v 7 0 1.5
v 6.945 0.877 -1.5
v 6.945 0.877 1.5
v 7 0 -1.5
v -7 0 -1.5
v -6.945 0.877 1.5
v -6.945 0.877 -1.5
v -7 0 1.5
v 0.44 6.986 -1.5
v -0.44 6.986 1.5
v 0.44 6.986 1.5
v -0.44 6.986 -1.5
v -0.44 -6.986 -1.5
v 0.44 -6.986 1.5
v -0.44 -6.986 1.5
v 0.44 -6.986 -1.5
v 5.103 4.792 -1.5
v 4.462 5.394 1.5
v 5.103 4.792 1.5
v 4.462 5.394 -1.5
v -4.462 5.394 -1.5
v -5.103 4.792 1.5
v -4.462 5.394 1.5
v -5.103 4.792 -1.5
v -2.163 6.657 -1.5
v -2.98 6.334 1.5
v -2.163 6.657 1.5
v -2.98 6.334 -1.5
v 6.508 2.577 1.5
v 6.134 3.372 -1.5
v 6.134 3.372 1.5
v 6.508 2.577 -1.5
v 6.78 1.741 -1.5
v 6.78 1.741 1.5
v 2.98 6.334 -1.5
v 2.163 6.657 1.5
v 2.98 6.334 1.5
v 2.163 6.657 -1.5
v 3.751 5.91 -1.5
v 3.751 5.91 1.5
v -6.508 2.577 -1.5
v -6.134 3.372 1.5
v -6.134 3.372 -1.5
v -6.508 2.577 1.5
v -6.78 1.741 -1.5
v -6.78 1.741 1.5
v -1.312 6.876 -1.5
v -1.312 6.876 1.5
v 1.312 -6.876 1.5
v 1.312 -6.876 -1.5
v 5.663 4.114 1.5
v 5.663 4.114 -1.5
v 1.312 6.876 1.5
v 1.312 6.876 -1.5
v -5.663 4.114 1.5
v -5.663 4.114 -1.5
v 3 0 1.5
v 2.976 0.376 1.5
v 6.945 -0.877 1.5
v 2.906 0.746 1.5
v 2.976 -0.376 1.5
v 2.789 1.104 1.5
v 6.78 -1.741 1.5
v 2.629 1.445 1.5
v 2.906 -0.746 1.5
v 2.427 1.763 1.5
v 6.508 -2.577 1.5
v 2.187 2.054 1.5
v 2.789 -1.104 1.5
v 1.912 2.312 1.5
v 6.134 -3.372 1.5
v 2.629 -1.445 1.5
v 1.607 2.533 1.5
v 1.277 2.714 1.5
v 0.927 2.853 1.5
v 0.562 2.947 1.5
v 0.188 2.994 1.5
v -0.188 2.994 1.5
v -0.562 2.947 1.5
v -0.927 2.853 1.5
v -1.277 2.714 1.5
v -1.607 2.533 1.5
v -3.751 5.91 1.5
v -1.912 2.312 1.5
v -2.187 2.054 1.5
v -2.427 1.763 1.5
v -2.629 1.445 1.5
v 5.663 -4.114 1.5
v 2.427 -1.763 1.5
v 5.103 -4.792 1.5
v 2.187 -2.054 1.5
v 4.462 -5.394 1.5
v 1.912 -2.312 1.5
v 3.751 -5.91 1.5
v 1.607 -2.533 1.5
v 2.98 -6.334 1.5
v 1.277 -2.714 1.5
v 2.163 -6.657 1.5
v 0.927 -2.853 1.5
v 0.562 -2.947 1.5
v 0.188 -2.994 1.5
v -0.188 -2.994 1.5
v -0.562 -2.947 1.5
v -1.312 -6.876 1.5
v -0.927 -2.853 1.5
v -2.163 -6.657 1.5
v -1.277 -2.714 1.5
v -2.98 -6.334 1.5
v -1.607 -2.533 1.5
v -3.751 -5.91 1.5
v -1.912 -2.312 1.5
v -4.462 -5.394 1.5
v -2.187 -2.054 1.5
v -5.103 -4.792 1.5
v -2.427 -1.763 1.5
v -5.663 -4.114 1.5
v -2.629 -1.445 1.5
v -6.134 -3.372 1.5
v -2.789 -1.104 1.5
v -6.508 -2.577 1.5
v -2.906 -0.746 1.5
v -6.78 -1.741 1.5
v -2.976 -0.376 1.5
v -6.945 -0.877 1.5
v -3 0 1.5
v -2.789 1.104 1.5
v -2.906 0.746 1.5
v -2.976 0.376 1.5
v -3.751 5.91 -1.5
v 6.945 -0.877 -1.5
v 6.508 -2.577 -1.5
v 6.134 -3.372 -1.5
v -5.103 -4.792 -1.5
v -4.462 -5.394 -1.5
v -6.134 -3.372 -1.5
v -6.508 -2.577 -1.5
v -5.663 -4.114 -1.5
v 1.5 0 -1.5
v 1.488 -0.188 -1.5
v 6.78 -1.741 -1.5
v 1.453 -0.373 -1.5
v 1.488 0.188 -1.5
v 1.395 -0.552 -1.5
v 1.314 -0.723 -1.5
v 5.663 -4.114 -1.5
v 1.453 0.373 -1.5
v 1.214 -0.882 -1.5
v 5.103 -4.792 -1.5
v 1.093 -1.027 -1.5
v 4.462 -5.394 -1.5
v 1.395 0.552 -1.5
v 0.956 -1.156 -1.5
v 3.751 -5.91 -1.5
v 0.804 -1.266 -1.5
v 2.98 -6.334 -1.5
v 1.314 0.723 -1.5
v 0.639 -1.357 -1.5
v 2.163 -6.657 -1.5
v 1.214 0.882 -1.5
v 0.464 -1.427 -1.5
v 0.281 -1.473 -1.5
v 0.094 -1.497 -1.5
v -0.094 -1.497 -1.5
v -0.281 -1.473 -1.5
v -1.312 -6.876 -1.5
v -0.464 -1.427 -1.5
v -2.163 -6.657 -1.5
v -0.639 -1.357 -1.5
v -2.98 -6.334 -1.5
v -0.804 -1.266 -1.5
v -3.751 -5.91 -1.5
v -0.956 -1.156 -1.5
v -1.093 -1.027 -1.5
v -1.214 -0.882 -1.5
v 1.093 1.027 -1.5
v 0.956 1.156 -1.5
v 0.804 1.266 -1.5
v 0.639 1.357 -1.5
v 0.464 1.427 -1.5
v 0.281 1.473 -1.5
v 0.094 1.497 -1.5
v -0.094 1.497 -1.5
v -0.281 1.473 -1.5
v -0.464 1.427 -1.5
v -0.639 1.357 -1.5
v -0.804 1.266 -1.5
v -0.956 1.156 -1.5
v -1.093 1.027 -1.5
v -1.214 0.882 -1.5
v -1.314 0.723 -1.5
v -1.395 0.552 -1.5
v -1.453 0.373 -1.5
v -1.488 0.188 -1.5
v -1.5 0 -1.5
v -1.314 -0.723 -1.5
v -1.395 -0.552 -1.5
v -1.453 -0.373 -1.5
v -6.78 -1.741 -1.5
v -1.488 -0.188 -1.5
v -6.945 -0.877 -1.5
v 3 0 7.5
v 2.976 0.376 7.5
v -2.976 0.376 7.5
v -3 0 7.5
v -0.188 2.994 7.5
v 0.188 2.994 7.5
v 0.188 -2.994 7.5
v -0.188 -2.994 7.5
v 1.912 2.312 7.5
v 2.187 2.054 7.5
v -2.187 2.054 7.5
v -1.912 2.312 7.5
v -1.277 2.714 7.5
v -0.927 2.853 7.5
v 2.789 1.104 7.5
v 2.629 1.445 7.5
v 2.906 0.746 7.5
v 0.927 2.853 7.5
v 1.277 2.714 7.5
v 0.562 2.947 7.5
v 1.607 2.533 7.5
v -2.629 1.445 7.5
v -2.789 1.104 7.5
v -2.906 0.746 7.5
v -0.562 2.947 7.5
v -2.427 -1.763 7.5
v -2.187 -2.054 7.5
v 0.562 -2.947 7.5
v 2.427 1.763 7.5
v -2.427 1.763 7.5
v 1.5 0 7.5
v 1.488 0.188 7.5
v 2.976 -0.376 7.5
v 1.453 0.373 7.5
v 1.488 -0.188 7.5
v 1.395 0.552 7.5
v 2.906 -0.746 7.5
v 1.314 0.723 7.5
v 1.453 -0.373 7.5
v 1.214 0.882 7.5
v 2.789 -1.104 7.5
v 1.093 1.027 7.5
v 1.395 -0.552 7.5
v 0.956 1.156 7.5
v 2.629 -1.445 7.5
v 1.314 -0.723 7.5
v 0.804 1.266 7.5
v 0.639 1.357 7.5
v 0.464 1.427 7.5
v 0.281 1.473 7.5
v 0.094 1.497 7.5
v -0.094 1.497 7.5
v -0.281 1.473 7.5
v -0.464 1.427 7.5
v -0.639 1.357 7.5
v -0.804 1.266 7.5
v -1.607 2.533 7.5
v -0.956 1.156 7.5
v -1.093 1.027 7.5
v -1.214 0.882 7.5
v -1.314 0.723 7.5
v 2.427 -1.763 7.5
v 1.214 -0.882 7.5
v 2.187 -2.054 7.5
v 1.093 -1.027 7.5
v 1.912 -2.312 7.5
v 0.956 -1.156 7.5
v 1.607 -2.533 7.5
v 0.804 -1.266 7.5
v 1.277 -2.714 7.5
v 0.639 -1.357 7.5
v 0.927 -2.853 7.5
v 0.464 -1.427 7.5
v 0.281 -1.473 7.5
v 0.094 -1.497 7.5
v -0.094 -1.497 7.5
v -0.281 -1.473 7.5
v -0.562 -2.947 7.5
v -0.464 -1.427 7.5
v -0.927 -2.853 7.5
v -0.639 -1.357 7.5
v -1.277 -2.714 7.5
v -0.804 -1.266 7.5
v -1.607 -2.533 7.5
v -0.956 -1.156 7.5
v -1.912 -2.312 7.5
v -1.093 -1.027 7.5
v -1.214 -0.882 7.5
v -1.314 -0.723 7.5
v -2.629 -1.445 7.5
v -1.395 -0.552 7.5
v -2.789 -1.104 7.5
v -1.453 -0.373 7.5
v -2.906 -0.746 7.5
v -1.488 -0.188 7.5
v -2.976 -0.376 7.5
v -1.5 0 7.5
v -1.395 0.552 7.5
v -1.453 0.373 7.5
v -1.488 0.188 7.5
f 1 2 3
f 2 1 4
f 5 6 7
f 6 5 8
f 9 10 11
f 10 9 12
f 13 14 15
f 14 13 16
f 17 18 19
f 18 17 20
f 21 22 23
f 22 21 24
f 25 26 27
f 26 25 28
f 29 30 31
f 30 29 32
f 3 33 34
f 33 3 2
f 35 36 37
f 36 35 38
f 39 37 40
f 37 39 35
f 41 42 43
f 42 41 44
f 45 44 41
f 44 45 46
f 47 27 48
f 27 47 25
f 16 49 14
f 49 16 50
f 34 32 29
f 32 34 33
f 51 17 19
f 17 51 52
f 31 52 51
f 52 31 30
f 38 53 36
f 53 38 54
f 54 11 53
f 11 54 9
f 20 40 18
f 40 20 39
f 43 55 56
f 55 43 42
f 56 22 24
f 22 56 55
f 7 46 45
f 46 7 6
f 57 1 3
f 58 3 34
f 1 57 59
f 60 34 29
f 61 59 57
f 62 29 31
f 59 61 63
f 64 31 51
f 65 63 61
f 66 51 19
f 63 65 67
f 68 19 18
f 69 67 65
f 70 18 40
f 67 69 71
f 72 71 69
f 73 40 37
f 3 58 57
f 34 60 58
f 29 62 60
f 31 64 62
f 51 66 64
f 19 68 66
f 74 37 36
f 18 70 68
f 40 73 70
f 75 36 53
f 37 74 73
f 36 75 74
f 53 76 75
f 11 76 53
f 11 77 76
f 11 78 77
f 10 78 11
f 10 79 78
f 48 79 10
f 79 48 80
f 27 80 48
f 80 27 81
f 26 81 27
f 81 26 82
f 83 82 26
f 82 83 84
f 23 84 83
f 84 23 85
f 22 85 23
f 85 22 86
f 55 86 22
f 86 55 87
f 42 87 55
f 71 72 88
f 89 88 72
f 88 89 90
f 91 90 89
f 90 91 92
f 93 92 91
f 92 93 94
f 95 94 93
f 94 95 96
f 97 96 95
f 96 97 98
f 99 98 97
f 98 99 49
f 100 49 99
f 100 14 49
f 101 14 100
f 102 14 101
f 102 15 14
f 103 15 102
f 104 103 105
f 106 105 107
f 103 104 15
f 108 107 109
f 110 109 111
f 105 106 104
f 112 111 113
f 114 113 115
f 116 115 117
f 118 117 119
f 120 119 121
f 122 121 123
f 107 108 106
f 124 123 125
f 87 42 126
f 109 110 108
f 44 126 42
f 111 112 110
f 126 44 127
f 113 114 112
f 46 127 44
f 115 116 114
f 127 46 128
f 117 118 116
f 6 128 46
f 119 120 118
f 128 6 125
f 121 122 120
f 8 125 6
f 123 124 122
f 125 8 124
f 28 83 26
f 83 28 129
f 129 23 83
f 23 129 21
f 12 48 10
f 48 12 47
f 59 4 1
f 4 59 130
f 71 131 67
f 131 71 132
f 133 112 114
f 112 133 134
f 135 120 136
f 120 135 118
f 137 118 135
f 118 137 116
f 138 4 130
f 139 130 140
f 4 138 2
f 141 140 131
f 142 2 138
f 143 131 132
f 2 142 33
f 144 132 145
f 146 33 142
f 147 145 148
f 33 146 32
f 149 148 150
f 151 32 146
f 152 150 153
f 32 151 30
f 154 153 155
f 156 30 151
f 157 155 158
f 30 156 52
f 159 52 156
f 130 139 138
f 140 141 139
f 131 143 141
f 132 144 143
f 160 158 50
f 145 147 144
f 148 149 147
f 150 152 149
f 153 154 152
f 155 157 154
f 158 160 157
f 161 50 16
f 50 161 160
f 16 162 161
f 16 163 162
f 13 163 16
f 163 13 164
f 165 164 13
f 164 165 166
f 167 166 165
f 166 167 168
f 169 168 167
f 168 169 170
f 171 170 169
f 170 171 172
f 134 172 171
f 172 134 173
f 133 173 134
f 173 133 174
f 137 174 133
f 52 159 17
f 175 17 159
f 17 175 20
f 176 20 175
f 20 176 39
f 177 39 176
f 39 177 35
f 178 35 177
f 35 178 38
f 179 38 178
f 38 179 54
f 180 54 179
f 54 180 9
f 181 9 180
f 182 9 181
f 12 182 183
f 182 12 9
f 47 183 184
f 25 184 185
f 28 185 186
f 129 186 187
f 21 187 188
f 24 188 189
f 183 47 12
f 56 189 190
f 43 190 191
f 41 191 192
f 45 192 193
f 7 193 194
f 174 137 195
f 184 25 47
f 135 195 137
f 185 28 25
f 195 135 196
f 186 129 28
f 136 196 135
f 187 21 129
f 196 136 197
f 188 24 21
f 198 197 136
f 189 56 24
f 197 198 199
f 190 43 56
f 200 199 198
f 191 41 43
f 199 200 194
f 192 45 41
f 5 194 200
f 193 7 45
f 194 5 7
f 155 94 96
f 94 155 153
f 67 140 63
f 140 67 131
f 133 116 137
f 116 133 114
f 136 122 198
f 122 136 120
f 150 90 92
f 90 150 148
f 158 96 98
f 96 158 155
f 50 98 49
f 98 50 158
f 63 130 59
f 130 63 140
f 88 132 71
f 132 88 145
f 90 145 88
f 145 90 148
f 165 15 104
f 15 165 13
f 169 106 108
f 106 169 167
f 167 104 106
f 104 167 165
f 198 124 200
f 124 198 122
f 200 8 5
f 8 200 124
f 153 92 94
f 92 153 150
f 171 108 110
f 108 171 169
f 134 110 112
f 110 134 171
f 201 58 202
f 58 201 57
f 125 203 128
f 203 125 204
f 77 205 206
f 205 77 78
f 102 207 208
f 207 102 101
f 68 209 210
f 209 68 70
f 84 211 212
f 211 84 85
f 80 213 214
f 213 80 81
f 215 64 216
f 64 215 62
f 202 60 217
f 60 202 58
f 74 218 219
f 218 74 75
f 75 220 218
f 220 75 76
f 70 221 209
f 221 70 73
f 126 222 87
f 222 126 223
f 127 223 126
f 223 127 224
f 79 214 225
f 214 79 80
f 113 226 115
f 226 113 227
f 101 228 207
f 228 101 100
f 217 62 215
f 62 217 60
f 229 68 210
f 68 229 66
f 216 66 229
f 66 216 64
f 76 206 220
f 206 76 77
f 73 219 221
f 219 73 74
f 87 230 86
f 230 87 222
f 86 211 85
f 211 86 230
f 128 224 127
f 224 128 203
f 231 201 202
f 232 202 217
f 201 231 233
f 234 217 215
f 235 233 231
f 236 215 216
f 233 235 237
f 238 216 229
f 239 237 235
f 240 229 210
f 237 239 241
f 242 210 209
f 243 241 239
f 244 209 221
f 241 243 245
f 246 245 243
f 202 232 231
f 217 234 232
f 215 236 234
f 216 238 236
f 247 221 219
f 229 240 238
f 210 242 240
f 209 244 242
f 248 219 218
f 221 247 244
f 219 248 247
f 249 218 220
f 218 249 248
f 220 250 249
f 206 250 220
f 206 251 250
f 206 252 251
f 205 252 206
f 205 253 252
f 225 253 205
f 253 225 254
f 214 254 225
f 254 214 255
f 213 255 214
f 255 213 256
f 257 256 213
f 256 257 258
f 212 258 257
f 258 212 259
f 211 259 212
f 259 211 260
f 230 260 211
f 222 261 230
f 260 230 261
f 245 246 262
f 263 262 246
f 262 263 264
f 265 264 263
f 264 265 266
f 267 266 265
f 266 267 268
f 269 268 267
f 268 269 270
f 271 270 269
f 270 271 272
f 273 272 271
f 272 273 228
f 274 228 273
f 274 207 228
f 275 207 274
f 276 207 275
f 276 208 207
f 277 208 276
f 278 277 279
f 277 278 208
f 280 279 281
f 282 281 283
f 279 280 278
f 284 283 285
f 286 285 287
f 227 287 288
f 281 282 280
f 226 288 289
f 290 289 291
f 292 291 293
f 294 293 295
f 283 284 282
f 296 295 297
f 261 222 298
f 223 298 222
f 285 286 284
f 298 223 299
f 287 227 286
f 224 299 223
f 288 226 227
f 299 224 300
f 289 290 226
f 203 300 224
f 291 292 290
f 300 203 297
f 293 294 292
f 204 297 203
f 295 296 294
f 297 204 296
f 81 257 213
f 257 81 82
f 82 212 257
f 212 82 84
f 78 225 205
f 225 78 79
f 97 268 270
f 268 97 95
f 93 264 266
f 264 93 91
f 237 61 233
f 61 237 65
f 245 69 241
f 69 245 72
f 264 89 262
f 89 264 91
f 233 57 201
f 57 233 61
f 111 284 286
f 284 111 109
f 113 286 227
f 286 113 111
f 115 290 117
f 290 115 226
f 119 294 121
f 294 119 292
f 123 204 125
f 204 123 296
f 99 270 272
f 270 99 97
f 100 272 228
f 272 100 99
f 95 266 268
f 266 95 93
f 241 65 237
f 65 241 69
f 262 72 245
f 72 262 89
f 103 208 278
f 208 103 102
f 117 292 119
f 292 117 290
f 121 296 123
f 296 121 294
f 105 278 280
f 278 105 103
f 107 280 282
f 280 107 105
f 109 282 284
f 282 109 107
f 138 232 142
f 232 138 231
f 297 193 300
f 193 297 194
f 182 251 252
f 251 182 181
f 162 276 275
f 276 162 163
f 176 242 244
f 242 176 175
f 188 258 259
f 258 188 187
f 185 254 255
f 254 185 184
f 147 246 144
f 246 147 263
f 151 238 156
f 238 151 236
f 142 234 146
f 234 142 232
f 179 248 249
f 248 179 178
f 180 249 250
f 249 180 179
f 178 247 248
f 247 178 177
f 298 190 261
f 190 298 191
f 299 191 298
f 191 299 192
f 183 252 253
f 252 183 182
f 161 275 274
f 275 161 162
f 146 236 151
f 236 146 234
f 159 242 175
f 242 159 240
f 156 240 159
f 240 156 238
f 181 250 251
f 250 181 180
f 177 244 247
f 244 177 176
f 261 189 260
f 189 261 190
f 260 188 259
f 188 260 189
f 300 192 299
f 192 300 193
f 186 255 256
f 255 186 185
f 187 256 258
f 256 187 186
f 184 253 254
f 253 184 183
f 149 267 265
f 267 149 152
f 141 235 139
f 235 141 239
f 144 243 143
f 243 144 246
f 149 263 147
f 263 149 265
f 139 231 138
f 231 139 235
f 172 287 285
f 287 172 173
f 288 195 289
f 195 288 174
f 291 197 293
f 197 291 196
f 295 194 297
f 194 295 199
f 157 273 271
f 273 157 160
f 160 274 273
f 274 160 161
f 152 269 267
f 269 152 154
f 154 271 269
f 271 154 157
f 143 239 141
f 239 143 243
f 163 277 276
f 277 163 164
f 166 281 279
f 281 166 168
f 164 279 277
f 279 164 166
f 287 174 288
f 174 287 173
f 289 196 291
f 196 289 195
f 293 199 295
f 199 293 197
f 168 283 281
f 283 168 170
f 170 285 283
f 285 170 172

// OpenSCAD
$fn = 50;


difference() {
	union() {
		translate(v = [0, 0, -1.5000000000]) {
			cylinder(h = 3, r = 7.0000000000);
		}
		translate(v = [0, 0, -1.5000000000]) {
			cylinder(h = 9, r = 3.0000000000);
		}
	}
	union() {
		translate(v = [0, 0, -100.0000000000]) {
			cylinder(h = 200, r = 1.5000000000);
		}
	}
}
